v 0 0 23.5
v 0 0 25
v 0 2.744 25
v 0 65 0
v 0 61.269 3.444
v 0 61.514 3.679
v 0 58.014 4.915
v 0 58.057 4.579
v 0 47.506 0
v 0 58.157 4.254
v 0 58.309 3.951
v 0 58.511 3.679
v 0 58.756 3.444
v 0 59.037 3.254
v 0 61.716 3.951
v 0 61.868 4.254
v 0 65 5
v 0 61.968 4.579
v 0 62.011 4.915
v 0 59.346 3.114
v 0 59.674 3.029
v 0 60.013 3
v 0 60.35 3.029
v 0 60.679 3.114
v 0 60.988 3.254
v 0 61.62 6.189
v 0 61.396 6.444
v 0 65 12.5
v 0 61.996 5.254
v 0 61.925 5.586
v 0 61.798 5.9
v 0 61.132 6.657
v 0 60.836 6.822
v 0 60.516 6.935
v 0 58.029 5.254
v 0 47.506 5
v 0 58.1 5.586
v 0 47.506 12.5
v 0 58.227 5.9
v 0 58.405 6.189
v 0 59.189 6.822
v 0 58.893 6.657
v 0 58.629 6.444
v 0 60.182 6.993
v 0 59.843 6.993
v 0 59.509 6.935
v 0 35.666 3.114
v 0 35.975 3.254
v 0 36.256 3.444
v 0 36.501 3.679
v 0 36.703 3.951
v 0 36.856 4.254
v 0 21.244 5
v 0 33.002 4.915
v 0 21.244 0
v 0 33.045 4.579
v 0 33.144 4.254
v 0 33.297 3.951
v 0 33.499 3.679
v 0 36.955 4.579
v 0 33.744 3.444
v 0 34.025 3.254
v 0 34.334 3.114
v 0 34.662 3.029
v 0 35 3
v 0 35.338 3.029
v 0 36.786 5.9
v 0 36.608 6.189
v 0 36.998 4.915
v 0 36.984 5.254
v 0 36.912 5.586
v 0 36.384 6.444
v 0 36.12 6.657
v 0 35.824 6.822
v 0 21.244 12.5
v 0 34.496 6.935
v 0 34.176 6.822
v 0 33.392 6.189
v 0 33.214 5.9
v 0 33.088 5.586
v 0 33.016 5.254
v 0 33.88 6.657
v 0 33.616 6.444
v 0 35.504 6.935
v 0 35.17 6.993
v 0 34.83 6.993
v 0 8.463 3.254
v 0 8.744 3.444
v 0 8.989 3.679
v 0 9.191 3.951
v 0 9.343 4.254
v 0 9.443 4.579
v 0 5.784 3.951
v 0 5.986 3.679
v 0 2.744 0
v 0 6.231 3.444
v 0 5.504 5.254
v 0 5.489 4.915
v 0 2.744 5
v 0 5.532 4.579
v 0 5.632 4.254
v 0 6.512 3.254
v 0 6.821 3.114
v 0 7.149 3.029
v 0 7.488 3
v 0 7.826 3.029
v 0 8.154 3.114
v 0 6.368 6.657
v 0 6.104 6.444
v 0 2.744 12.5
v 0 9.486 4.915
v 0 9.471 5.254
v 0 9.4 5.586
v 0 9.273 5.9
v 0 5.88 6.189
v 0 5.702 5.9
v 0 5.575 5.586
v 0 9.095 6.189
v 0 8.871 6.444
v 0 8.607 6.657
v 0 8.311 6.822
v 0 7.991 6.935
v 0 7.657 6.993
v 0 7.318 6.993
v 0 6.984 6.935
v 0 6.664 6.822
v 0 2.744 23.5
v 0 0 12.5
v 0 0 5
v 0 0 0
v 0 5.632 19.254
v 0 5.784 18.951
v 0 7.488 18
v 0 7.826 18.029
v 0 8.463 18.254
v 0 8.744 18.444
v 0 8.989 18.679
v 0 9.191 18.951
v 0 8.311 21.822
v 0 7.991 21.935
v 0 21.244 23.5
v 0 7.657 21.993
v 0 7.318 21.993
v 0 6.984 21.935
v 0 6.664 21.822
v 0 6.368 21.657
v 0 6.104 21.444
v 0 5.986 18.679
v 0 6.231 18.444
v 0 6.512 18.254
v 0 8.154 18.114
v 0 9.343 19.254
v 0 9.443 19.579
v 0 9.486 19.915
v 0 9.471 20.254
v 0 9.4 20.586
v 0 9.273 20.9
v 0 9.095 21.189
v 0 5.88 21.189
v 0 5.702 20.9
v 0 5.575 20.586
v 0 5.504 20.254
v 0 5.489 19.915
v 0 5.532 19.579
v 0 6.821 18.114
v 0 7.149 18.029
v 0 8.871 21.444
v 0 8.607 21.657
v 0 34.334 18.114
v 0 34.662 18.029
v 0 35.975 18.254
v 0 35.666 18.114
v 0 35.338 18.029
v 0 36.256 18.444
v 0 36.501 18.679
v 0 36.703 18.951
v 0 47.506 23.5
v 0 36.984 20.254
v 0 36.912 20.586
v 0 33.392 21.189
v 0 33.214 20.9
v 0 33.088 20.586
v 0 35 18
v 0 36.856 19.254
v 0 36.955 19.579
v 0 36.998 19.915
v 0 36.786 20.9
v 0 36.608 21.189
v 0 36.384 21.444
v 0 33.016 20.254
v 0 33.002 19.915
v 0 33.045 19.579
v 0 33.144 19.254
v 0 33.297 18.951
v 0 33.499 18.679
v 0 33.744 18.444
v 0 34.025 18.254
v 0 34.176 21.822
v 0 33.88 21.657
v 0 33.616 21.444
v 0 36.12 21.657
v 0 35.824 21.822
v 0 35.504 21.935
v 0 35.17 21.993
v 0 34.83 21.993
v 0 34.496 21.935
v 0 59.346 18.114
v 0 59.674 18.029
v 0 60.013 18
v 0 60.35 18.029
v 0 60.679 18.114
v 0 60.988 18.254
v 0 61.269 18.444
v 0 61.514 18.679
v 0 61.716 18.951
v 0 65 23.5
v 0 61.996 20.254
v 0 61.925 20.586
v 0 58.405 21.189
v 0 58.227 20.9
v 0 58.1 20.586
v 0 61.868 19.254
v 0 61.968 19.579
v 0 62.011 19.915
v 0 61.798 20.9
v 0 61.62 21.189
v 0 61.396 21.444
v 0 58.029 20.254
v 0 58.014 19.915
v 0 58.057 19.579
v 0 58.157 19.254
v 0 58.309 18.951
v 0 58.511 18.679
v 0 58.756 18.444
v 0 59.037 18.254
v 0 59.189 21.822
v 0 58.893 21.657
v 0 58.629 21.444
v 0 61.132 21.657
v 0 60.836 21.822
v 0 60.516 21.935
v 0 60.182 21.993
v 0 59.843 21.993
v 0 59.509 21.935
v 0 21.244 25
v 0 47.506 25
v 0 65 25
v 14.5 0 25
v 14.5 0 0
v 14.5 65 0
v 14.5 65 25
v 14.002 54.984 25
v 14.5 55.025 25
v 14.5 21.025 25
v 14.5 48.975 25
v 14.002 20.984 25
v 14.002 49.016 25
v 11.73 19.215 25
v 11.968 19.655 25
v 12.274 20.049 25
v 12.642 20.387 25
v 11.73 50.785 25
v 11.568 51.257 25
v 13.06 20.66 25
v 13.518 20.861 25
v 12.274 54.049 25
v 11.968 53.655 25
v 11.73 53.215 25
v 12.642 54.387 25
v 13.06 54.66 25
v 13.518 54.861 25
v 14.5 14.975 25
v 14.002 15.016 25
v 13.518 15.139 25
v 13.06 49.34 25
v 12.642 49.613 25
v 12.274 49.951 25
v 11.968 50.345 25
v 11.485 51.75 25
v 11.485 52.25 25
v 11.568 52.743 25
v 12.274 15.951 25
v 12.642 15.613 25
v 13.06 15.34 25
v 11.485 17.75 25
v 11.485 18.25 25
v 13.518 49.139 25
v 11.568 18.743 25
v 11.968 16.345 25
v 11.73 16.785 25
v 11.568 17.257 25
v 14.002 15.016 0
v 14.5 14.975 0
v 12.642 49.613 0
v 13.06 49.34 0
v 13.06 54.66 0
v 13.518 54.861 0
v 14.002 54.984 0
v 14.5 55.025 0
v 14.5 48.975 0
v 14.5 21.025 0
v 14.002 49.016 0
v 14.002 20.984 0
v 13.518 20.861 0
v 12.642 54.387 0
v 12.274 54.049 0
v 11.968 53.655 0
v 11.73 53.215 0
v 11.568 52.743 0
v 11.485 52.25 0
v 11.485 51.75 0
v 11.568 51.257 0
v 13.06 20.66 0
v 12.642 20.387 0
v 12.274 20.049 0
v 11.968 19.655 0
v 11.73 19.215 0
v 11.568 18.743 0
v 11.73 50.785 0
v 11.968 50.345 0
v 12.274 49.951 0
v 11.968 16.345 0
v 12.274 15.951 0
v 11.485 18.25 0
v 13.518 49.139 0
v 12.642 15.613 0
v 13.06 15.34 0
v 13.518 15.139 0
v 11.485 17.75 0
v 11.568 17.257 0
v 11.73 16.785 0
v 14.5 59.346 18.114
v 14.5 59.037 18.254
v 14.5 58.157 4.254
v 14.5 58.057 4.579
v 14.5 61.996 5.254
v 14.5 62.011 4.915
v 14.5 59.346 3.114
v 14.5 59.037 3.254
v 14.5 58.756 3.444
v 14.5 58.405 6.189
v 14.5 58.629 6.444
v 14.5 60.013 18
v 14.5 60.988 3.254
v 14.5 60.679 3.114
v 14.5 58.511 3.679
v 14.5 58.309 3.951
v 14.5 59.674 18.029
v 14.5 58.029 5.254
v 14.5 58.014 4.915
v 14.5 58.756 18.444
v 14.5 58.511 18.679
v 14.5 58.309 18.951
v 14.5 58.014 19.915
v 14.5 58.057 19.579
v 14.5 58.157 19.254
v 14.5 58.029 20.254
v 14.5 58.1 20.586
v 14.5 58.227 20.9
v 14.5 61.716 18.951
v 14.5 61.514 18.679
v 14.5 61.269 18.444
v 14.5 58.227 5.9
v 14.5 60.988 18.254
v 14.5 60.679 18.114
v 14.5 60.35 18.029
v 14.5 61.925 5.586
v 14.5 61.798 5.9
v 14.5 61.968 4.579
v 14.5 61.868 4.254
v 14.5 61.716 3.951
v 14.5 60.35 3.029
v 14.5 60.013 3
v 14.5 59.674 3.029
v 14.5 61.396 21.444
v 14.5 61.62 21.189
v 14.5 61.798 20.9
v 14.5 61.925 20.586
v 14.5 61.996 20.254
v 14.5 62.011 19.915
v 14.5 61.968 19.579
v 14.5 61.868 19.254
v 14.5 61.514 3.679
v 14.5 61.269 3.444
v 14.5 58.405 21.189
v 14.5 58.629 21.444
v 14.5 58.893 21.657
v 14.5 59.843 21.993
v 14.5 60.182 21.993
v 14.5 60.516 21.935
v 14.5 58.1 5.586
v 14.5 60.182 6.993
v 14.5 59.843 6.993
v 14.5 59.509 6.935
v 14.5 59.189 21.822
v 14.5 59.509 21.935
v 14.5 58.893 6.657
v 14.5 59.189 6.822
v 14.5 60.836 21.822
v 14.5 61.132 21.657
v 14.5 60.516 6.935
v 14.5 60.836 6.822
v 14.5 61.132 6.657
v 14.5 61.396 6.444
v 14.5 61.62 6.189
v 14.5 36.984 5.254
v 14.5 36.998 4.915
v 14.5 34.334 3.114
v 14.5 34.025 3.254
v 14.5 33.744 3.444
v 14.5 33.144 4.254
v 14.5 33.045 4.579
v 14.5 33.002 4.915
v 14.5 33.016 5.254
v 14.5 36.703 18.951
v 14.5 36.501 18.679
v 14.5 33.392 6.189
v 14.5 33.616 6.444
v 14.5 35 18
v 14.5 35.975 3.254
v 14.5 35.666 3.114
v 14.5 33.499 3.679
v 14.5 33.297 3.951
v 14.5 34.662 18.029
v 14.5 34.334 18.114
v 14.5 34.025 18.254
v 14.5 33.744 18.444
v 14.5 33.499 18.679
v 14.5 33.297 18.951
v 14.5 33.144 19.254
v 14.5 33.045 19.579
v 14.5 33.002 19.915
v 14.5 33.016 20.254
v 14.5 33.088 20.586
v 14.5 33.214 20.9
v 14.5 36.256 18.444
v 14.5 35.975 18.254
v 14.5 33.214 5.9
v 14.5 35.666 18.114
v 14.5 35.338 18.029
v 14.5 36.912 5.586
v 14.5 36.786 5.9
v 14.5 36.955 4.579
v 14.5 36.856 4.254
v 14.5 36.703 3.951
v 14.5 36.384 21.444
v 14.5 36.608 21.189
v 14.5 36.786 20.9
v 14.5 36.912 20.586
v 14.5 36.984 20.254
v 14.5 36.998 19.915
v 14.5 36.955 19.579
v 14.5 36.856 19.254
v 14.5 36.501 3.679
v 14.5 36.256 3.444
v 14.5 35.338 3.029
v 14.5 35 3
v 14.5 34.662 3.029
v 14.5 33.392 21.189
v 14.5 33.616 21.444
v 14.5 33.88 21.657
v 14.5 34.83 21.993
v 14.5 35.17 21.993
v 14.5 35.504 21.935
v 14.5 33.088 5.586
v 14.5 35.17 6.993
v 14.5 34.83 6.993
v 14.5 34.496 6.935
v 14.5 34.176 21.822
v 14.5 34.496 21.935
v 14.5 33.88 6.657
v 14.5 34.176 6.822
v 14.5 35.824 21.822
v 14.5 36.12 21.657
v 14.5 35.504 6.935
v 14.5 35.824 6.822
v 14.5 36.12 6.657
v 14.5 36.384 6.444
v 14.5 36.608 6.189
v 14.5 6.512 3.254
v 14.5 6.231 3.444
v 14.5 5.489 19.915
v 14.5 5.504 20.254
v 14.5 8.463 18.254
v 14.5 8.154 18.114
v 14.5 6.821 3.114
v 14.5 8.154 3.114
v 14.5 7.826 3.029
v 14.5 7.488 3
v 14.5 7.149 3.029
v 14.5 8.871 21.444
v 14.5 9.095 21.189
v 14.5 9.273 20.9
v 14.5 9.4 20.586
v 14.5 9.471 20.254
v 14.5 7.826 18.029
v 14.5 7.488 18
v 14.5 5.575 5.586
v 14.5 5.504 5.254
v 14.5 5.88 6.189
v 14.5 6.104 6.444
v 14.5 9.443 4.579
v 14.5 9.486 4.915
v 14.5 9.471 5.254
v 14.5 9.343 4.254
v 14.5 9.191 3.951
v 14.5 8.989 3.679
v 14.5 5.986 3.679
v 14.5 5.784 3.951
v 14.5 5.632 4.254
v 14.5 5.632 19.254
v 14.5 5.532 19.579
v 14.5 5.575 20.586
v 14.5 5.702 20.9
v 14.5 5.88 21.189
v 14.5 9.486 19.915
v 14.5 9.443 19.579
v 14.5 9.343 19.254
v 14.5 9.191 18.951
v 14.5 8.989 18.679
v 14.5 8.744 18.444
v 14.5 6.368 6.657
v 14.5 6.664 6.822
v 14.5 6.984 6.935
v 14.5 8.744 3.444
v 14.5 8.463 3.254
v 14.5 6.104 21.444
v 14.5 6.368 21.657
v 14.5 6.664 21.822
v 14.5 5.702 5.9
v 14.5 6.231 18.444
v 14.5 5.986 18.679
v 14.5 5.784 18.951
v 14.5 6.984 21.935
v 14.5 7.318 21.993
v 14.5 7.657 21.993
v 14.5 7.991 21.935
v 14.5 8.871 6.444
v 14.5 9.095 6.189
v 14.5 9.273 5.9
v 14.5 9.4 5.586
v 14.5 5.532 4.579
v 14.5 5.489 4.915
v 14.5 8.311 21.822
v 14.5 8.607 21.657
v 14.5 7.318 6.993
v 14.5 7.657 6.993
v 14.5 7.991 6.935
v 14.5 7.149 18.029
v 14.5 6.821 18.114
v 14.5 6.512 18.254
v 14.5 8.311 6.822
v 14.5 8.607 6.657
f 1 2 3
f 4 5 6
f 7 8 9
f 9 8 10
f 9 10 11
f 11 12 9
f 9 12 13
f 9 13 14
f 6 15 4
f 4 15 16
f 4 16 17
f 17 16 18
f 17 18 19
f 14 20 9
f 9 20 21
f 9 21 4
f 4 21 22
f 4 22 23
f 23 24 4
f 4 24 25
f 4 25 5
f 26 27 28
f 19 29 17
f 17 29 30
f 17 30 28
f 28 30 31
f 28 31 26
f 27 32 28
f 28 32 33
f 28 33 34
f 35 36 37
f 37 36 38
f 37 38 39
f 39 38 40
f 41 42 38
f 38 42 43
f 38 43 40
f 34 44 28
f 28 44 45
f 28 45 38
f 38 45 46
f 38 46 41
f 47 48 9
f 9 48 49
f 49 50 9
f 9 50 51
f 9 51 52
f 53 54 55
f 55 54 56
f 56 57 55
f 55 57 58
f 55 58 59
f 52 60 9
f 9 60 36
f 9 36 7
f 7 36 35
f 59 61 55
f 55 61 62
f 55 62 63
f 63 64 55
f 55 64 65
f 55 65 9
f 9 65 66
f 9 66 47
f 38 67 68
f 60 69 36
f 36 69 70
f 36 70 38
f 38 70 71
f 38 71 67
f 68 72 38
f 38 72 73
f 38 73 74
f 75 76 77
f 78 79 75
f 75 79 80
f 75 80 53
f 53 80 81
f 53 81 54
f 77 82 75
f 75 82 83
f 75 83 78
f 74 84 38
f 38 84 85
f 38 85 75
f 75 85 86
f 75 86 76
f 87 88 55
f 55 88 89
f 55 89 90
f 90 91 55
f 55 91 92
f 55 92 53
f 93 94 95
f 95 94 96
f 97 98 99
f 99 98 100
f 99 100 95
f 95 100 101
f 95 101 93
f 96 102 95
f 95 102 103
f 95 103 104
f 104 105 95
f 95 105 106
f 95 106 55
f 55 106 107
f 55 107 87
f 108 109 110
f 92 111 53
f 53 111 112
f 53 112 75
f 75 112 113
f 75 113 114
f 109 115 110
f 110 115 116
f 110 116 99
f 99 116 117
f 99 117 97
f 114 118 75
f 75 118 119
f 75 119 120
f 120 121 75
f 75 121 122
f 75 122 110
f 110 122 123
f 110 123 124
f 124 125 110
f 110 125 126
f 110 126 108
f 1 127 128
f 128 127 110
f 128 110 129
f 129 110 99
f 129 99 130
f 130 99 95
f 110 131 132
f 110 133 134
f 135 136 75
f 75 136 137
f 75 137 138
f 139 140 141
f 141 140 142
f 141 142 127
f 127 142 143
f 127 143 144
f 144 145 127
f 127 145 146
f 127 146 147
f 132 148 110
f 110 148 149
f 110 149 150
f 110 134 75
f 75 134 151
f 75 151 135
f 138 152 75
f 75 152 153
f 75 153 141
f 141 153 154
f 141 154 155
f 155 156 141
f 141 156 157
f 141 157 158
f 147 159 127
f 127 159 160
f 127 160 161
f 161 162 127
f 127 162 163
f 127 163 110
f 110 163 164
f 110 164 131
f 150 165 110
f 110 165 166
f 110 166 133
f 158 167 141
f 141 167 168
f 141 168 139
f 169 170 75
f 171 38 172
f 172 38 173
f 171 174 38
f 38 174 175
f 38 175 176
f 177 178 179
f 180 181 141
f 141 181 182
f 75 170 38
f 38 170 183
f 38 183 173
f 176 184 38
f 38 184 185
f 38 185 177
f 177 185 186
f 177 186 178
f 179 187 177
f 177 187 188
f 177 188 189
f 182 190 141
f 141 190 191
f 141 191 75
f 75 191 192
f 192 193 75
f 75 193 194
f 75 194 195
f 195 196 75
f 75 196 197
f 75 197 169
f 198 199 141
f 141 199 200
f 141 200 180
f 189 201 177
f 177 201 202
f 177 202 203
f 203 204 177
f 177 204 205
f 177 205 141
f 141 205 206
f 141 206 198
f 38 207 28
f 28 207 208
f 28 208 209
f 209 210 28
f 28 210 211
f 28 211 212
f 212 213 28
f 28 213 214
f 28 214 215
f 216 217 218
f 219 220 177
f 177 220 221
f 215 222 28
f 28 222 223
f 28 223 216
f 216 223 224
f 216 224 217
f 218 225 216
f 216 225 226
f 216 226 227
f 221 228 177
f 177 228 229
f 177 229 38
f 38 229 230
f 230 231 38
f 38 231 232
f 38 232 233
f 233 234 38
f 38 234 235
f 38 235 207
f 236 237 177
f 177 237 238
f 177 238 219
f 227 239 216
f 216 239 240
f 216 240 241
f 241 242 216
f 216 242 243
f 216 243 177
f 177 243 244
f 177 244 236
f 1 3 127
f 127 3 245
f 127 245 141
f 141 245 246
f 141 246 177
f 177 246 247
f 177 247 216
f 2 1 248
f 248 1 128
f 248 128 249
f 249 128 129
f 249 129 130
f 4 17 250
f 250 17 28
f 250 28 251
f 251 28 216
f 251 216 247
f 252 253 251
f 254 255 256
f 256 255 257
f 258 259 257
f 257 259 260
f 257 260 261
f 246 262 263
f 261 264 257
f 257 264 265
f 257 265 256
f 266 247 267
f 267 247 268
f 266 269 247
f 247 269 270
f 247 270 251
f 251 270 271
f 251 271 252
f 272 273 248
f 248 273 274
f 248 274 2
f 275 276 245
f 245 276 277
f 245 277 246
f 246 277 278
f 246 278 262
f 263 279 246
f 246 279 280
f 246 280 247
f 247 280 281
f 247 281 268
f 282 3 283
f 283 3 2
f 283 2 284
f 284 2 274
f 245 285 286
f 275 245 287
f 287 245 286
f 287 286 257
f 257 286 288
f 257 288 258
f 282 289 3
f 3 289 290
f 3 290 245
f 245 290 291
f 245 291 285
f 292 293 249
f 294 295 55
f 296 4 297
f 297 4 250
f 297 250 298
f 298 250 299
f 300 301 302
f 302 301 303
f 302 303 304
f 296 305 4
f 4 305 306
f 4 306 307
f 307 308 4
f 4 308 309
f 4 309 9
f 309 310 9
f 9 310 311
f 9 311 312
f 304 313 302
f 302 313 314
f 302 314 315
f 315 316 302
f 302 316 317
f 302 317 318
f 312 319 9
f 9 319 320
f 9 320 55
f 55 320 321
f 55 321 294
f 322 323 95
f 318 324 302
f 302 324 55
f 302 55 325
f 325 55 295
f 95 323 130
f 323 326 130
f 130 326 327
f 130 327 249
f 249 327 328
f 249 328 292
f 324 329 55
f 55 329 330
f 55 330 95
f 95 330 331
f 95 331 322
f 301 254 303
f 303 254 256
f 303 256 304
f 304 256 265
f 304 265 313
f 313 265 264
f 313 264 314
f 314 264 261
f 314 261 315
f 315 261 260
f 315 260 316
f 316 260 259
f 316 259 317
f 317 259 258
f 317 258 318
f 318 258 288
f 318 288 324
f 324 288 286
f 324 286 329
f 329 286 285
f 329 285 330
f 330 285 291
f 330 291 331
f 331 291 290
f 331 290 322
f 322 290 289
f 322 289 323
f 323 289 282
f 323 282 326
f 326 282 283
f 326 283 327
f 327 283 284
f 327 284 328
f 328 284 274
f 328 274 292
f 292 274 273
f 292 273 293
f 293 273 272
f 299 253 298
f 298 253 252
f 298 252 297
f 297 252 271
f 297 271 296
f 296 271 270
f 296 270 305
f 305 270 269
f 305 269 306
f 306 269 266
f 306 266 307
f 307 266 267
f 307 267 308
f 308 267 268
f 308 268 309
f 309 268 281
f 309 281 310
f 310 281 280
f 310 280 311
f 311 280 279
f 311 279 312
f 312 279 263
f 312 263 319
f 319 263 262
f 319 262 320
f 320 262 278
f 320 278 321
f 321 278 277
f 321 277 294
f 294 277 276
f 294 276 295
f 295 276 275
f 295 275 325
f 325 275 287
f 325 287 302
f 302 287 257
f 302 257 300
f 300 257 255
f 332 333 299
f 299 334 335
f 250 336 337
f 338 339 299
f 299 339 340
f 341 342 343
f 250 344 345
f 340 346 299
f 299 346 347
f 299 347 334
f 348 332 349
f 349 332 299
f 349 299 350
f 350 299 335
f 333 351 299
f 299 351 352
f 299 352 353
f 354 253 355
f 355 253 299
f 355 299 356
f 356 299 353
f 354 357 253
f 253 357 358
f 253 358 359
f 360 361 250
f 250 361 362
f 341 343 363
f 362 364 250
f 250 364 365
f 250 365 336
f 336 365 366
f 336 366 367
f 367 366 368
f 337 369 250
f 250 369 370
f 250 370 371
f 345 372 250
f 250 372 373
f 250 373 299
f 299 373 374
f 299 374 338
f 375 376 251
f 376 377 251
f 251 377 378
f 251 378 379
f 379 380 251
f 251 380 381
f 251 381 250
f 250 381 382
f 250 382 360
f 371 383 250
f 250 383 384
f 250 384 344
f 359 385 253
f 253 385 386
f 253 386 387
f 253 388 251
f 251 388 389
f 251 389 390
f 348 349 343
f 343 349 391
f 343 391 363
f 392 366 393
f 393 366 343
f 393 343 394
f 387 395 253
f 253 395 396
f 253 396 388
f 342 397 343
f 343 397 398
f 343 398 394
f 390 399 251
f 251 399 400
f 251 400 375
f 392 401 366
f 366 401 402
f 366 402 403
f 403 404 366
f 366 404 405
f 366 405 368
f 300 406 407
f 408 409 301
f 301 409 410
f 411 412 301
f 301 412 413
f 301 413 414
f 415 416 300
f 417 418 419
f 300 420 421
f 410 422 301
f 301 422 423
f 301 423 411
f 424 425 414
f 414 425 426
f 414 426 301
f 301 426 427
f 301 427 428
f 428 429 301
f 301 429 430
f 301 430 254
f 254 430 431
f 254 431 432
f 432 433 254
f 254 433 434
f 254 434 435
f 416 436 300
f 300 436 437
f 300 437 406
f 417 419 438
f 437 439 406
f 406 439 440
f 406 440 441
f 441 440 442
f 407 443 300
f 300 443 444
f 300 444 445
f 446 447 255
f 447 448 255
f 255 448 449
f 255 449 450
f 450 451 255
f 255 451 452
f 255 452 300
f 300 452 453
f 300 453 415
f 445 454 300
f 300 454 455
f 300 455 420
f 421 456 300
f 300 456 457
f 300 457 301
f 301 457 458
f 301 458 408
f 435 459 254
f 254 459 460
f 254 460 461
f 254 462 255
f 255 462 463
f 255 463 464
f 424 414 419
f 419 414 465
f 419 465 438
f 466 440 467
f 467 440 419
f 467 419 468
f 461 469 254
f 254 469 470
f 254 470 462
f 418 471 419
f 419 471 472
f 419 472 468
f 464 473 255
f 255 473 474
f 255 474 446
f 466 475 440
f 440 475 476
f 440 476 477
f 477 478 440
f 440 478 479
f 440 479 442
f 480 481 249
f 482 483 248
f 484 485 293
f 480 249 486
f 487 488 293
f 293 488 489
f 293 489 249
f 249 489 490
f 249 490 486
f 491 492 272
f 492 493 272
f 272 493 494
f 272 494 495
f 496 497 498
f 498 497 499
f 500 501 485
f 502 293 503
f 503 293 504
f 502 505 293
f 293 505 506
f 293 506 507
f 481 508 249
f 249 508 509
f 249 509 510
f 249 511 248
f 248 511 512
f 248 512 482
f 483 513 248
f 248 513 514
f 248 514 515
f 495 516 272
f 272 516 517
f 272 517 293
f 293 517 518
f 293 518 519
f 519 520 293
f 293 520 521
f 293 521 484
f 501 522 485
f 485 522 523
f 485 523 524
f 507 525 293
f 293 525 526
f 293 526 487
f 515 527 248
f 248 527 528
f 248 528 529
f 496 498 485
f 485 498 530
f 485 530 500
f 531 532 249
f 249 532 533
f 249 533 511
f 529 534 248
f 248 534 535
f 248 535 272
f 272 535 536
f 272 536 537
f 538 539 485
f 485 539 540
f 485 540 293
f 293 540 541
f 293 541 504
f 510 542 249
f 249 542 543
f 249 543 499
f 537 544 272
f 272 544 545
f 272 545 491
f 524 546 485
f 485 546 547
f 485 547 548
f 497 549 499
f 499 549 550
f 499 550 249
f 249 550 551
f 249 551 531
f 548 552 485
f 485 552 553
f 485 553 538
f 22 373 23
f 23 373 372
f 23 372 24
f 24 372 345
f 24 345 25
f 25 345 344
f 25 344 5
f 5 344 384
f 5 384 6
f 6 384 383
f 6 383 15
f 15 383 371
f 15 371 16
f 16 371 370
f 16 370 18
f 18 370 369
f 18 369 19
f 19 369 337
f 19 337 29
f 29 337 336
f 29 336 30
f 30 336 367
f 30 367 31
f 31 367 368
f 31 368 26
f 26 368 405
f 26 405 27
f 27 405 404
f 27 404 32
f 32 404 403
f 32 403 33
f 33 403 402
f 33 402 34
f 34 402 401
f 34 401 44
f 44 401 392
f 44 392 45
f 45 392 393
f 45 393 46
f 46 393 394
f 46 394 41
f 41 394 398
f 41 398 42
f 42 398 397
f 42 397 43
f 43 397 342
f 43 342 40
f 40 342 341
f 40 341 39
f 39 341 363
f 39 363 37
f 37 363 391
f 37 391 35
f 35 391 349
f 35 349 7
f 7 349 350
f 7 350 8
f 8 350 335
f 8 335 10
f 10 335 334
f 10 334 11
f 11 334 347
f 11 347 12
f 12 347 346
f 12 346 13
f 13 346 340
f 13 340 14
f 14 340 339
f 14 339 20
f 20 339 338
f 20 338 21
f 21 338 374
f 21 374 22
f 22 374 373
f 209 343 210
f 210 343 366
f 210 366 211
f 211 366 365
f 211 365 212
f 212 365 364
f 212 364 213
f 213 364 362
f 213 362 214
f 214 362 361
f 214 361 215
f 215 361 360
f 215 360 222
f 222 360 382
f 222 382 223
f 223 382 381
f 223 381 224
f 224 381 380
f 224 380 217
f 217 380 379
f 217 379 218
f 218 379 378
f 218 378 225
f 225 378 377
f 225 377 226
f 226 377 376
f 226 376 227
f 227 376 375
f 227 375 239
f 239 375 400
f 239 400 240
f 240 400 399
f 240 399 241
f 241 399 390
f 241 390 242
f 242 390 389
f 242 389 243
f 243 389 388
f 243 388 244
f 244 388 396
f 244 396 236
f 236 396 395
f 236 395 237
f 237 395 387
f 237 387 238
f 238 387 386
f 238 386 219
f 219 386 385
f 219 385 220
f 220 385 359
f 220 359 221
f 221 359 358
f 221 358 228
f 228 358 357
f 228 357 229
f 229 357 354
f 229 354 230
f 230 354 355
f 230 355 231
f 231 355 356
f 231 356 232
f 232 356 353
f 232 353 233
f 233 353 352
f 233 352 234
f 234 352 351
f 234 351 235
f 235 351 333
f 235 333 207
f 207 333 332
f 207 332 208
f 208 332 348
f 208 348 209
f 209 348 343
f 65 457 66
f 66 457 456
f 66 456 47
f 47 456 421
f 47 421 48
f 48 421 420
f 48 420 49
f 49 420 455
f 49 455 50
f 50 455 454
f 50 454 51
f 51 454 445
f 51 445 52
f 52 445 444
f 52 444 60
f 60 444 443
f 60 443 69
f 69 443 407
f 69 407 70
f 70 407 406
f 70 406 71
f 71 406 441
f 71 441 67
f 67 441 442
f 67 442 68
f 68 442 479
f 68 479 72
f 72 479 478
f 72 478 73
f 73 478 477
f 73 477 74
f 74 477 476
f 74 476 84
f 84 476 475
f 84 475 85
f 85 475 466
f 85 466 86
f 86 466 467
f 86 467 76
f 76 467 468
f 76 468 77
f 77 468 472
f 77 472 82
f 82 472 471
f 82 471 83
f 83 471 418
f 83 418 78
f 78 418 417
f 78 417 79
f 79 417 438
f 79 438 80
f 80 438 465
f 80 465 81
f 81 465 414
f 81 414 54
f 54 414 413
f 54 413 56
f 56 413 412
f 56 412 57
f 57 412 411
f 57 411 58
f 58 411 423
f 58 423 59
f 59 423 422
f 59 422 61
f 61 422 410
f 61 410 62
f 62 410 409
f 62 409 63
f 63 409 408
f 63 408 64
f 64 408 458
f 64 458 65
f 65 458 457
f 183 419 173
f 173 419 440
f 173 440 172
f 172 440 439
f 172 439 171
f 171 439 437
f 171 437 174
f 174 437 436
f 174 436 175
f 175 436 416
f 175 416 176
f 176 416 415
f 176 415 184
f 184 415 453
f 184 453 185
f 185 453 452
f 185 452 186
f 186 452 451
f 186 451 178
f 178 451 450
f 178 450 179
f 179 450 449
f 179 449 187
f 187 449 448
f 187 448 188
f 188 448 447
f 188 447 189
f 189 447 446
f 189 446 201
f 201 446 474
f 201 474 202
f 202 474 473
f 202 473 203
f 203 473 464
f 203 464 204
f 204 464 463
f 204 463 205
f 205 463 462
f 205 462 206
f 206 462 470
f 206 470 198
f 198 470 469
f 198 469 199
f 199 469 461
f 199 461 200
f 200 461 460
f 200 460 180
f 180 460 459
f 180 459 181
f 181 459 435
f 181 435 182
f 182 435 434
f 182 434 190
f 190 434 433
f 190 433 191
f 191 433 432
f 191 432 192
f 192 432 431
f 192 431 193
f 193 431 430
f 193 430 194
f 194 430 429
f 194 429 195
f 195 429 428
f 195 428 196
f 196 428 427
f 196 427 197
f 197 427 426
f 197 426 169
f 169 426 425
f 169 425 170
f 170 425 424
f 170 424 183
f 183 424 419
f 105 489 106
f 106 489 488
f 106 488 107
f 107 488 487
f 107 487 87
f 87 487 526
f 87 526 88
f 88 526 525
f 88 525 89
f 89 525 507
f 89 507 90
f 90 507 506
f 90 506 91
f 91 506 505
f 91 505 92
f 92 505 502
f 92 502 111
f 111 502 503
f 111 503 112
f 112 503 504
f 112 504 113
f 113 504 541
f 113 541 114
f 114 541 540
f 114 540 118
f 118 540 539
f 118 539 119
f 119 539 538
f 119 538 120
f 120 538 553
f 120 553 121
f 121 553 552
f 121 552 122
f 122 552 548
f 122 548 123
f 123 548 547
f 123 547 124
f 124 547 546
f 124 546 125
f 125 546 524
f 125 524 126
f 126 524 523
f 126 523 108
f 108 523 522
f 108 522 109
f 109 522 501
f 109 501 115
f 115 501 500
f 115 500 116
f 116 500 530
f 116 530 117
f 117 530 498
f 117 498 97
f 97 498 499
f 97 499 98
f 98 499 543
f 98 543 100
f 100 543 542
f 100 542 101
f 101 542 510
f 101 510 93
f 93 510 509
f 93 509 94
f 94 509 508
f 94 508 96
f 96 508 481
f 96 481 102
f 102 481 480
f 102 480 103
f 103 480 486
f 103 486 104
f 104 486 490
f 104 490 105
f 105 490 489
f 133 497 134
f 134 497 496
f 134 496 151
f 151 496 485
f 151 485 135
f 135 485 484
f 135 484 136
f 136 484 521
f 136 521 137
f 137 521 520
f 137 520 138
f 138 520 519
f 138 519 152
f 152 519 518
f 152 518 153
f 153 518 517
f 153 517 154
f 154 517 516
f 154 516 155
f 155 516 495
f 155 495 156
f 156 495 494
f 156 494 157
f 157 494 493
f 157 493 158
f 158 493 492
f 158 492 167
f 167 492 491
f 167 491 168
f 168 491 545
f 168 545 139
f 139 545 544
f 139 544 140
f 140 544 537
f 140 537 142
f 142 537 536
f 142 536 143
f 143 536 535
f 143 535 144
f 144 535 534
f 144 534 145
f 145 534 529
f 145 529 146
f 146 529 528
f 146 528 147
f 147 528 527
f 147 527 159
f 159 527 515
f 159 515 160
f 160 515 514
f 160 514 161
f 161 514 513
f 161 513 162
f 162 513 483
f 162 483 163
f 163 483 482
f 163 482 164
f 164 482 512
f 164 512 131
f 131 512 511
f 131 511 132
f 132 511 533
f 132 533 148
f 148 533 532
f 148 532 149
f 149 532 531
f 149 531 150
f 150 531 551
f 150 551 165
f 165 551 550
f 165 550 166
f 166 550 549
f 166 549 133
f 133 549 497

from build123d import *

# Parameters (mm, degrees)
SKETCH_1_W          = 29
SKETCH_1_H          = 65
EXTRUDE_1_DEPTH     = 25
SKETCH_2_R          = 3.025
SKETCH_2_R_2        = 3.005
CUT_EXTRUDE_3_DEPTH = 76.43871685
SKETCH_6_W          = 14.5
SKETCH_6_H          = 65
CUT_EXTRUDE_4_DEPTH = 76.43871685
SKETCH_7_R          = 2
CUT_EXTRUDE_5_DEPTH = 72.135434208
SKETCH_8_R          = 2
CUT_EXTRUDE_6_DEPTH = 72.135434208
SKETCH_9_R          = 2
CUT_EXTRUDE_7_DEPTH = 72.135434208


with BuildPart() as part:
    # 草图1 → 凸台-拉伸1 (new body)
    with BuildSketch(Plane.XY):
        with Locations((14.5, 32.5)):
            Rectangle(SKETCH_1_W, SKETCH_1_H)
    extrude(amount=EXTRUDE_1_DEPTH)

    # 草图2 → 切除-拉伸3 (cut, through all)
    # profile 1 of 2: a face of its own
    with BuildSketch(Plane.XY.offset(25)):
        with Locations((14.5, 52)):
            Circle(SKETCH_2_R)
        with Locations((14.5, 52)):
            Circle(SKETCH_2_R_2, mode=Mode.SUBTRACT)
    # profile 2 of 2: a face of its own
    with BuildSketch(Plane.XY.offset(25)):
        with Locations((14.5, 18)):
            Circle(SKETCH_2_R)
        with Locations((14.5, 18)):
            Circle(SKETCH_2_R_2, mode=Mode.SUBTRACT)
    extrude(amount=-CUT_EXTRUDE_3_DEPTH, mode=Mode.SUBTRACT)


with BuildPart() as cut_extrude_3_kept_piece:
    # of the separate pieces the step leaves, the one the design keeps (cut_extrude_3_pieces_kept)
    add(part.part.solids().sort_by_distance((0, 0, 0))[0])

    # 草图6 → 切除-拉伸4 (cut, through all)
    with BuildSketch(Plane.XY.offset(25)):
        with Locations((21.75, 32.5)):
            Rectangle(SKETCH_6_W, SKETCH_6_H)
    extrude(amount=-CUT_EXTRUDE_4_DEPTH, mode=Mode.SUBTRACT)

    # 草图7 → 切除-拉伸5 (cut, through all)
    with BuildSketch(Plane(origin=(14.5, 0, 0), x_dir=(0, 0, -1), z_dir=(1, 0, 0))):
        with Locations((-20, 60.0125)):
            Circle(SKETCH_7_R)
        with Locations((-5, 60.0125)):
            Circle(SKETCH_7_R)
    extrude(amount=-CUT_EXTRUDE_5_DEPTH, mode=Mode.SUBTRACT)

    # 草图8 → 切除-拉伸6 (cut, through all)
    with BuildSketch(Plane(origin=(14.5, 0, 0), x_dir=(0, 0, -1), z_dir=(1, 0, 0))):
        with Locations((-20, 35)):
            Circle(SKETCH_8_R)
        with Locations((-5, 35)):
            Circle(SKETCH_8_R)
    extrude(amount=-CUT_EXTRUDE_6_DEPTH, mode=Mode.SUBTRACT)

    # 草图9 → 切除-拉伸7 (cut, through all)
    with BuildSketch(Plane(origin=(14.5, 0, 0), x_dir=(0, 0, -1), z_dir=(1, 0, 0))):
        with Locations((-20, 7.4875)):
            Circle(SKETCH_9_R)
        with Locations((-5, 7.4875)):
            Circle(SKETCH_9_R)
    extrude(amount=-CUT_EXTRUDE_7_DEPTH, mode=Mode.SUBTRACT)


solid = cut_extrude_3_kept_piece.part
